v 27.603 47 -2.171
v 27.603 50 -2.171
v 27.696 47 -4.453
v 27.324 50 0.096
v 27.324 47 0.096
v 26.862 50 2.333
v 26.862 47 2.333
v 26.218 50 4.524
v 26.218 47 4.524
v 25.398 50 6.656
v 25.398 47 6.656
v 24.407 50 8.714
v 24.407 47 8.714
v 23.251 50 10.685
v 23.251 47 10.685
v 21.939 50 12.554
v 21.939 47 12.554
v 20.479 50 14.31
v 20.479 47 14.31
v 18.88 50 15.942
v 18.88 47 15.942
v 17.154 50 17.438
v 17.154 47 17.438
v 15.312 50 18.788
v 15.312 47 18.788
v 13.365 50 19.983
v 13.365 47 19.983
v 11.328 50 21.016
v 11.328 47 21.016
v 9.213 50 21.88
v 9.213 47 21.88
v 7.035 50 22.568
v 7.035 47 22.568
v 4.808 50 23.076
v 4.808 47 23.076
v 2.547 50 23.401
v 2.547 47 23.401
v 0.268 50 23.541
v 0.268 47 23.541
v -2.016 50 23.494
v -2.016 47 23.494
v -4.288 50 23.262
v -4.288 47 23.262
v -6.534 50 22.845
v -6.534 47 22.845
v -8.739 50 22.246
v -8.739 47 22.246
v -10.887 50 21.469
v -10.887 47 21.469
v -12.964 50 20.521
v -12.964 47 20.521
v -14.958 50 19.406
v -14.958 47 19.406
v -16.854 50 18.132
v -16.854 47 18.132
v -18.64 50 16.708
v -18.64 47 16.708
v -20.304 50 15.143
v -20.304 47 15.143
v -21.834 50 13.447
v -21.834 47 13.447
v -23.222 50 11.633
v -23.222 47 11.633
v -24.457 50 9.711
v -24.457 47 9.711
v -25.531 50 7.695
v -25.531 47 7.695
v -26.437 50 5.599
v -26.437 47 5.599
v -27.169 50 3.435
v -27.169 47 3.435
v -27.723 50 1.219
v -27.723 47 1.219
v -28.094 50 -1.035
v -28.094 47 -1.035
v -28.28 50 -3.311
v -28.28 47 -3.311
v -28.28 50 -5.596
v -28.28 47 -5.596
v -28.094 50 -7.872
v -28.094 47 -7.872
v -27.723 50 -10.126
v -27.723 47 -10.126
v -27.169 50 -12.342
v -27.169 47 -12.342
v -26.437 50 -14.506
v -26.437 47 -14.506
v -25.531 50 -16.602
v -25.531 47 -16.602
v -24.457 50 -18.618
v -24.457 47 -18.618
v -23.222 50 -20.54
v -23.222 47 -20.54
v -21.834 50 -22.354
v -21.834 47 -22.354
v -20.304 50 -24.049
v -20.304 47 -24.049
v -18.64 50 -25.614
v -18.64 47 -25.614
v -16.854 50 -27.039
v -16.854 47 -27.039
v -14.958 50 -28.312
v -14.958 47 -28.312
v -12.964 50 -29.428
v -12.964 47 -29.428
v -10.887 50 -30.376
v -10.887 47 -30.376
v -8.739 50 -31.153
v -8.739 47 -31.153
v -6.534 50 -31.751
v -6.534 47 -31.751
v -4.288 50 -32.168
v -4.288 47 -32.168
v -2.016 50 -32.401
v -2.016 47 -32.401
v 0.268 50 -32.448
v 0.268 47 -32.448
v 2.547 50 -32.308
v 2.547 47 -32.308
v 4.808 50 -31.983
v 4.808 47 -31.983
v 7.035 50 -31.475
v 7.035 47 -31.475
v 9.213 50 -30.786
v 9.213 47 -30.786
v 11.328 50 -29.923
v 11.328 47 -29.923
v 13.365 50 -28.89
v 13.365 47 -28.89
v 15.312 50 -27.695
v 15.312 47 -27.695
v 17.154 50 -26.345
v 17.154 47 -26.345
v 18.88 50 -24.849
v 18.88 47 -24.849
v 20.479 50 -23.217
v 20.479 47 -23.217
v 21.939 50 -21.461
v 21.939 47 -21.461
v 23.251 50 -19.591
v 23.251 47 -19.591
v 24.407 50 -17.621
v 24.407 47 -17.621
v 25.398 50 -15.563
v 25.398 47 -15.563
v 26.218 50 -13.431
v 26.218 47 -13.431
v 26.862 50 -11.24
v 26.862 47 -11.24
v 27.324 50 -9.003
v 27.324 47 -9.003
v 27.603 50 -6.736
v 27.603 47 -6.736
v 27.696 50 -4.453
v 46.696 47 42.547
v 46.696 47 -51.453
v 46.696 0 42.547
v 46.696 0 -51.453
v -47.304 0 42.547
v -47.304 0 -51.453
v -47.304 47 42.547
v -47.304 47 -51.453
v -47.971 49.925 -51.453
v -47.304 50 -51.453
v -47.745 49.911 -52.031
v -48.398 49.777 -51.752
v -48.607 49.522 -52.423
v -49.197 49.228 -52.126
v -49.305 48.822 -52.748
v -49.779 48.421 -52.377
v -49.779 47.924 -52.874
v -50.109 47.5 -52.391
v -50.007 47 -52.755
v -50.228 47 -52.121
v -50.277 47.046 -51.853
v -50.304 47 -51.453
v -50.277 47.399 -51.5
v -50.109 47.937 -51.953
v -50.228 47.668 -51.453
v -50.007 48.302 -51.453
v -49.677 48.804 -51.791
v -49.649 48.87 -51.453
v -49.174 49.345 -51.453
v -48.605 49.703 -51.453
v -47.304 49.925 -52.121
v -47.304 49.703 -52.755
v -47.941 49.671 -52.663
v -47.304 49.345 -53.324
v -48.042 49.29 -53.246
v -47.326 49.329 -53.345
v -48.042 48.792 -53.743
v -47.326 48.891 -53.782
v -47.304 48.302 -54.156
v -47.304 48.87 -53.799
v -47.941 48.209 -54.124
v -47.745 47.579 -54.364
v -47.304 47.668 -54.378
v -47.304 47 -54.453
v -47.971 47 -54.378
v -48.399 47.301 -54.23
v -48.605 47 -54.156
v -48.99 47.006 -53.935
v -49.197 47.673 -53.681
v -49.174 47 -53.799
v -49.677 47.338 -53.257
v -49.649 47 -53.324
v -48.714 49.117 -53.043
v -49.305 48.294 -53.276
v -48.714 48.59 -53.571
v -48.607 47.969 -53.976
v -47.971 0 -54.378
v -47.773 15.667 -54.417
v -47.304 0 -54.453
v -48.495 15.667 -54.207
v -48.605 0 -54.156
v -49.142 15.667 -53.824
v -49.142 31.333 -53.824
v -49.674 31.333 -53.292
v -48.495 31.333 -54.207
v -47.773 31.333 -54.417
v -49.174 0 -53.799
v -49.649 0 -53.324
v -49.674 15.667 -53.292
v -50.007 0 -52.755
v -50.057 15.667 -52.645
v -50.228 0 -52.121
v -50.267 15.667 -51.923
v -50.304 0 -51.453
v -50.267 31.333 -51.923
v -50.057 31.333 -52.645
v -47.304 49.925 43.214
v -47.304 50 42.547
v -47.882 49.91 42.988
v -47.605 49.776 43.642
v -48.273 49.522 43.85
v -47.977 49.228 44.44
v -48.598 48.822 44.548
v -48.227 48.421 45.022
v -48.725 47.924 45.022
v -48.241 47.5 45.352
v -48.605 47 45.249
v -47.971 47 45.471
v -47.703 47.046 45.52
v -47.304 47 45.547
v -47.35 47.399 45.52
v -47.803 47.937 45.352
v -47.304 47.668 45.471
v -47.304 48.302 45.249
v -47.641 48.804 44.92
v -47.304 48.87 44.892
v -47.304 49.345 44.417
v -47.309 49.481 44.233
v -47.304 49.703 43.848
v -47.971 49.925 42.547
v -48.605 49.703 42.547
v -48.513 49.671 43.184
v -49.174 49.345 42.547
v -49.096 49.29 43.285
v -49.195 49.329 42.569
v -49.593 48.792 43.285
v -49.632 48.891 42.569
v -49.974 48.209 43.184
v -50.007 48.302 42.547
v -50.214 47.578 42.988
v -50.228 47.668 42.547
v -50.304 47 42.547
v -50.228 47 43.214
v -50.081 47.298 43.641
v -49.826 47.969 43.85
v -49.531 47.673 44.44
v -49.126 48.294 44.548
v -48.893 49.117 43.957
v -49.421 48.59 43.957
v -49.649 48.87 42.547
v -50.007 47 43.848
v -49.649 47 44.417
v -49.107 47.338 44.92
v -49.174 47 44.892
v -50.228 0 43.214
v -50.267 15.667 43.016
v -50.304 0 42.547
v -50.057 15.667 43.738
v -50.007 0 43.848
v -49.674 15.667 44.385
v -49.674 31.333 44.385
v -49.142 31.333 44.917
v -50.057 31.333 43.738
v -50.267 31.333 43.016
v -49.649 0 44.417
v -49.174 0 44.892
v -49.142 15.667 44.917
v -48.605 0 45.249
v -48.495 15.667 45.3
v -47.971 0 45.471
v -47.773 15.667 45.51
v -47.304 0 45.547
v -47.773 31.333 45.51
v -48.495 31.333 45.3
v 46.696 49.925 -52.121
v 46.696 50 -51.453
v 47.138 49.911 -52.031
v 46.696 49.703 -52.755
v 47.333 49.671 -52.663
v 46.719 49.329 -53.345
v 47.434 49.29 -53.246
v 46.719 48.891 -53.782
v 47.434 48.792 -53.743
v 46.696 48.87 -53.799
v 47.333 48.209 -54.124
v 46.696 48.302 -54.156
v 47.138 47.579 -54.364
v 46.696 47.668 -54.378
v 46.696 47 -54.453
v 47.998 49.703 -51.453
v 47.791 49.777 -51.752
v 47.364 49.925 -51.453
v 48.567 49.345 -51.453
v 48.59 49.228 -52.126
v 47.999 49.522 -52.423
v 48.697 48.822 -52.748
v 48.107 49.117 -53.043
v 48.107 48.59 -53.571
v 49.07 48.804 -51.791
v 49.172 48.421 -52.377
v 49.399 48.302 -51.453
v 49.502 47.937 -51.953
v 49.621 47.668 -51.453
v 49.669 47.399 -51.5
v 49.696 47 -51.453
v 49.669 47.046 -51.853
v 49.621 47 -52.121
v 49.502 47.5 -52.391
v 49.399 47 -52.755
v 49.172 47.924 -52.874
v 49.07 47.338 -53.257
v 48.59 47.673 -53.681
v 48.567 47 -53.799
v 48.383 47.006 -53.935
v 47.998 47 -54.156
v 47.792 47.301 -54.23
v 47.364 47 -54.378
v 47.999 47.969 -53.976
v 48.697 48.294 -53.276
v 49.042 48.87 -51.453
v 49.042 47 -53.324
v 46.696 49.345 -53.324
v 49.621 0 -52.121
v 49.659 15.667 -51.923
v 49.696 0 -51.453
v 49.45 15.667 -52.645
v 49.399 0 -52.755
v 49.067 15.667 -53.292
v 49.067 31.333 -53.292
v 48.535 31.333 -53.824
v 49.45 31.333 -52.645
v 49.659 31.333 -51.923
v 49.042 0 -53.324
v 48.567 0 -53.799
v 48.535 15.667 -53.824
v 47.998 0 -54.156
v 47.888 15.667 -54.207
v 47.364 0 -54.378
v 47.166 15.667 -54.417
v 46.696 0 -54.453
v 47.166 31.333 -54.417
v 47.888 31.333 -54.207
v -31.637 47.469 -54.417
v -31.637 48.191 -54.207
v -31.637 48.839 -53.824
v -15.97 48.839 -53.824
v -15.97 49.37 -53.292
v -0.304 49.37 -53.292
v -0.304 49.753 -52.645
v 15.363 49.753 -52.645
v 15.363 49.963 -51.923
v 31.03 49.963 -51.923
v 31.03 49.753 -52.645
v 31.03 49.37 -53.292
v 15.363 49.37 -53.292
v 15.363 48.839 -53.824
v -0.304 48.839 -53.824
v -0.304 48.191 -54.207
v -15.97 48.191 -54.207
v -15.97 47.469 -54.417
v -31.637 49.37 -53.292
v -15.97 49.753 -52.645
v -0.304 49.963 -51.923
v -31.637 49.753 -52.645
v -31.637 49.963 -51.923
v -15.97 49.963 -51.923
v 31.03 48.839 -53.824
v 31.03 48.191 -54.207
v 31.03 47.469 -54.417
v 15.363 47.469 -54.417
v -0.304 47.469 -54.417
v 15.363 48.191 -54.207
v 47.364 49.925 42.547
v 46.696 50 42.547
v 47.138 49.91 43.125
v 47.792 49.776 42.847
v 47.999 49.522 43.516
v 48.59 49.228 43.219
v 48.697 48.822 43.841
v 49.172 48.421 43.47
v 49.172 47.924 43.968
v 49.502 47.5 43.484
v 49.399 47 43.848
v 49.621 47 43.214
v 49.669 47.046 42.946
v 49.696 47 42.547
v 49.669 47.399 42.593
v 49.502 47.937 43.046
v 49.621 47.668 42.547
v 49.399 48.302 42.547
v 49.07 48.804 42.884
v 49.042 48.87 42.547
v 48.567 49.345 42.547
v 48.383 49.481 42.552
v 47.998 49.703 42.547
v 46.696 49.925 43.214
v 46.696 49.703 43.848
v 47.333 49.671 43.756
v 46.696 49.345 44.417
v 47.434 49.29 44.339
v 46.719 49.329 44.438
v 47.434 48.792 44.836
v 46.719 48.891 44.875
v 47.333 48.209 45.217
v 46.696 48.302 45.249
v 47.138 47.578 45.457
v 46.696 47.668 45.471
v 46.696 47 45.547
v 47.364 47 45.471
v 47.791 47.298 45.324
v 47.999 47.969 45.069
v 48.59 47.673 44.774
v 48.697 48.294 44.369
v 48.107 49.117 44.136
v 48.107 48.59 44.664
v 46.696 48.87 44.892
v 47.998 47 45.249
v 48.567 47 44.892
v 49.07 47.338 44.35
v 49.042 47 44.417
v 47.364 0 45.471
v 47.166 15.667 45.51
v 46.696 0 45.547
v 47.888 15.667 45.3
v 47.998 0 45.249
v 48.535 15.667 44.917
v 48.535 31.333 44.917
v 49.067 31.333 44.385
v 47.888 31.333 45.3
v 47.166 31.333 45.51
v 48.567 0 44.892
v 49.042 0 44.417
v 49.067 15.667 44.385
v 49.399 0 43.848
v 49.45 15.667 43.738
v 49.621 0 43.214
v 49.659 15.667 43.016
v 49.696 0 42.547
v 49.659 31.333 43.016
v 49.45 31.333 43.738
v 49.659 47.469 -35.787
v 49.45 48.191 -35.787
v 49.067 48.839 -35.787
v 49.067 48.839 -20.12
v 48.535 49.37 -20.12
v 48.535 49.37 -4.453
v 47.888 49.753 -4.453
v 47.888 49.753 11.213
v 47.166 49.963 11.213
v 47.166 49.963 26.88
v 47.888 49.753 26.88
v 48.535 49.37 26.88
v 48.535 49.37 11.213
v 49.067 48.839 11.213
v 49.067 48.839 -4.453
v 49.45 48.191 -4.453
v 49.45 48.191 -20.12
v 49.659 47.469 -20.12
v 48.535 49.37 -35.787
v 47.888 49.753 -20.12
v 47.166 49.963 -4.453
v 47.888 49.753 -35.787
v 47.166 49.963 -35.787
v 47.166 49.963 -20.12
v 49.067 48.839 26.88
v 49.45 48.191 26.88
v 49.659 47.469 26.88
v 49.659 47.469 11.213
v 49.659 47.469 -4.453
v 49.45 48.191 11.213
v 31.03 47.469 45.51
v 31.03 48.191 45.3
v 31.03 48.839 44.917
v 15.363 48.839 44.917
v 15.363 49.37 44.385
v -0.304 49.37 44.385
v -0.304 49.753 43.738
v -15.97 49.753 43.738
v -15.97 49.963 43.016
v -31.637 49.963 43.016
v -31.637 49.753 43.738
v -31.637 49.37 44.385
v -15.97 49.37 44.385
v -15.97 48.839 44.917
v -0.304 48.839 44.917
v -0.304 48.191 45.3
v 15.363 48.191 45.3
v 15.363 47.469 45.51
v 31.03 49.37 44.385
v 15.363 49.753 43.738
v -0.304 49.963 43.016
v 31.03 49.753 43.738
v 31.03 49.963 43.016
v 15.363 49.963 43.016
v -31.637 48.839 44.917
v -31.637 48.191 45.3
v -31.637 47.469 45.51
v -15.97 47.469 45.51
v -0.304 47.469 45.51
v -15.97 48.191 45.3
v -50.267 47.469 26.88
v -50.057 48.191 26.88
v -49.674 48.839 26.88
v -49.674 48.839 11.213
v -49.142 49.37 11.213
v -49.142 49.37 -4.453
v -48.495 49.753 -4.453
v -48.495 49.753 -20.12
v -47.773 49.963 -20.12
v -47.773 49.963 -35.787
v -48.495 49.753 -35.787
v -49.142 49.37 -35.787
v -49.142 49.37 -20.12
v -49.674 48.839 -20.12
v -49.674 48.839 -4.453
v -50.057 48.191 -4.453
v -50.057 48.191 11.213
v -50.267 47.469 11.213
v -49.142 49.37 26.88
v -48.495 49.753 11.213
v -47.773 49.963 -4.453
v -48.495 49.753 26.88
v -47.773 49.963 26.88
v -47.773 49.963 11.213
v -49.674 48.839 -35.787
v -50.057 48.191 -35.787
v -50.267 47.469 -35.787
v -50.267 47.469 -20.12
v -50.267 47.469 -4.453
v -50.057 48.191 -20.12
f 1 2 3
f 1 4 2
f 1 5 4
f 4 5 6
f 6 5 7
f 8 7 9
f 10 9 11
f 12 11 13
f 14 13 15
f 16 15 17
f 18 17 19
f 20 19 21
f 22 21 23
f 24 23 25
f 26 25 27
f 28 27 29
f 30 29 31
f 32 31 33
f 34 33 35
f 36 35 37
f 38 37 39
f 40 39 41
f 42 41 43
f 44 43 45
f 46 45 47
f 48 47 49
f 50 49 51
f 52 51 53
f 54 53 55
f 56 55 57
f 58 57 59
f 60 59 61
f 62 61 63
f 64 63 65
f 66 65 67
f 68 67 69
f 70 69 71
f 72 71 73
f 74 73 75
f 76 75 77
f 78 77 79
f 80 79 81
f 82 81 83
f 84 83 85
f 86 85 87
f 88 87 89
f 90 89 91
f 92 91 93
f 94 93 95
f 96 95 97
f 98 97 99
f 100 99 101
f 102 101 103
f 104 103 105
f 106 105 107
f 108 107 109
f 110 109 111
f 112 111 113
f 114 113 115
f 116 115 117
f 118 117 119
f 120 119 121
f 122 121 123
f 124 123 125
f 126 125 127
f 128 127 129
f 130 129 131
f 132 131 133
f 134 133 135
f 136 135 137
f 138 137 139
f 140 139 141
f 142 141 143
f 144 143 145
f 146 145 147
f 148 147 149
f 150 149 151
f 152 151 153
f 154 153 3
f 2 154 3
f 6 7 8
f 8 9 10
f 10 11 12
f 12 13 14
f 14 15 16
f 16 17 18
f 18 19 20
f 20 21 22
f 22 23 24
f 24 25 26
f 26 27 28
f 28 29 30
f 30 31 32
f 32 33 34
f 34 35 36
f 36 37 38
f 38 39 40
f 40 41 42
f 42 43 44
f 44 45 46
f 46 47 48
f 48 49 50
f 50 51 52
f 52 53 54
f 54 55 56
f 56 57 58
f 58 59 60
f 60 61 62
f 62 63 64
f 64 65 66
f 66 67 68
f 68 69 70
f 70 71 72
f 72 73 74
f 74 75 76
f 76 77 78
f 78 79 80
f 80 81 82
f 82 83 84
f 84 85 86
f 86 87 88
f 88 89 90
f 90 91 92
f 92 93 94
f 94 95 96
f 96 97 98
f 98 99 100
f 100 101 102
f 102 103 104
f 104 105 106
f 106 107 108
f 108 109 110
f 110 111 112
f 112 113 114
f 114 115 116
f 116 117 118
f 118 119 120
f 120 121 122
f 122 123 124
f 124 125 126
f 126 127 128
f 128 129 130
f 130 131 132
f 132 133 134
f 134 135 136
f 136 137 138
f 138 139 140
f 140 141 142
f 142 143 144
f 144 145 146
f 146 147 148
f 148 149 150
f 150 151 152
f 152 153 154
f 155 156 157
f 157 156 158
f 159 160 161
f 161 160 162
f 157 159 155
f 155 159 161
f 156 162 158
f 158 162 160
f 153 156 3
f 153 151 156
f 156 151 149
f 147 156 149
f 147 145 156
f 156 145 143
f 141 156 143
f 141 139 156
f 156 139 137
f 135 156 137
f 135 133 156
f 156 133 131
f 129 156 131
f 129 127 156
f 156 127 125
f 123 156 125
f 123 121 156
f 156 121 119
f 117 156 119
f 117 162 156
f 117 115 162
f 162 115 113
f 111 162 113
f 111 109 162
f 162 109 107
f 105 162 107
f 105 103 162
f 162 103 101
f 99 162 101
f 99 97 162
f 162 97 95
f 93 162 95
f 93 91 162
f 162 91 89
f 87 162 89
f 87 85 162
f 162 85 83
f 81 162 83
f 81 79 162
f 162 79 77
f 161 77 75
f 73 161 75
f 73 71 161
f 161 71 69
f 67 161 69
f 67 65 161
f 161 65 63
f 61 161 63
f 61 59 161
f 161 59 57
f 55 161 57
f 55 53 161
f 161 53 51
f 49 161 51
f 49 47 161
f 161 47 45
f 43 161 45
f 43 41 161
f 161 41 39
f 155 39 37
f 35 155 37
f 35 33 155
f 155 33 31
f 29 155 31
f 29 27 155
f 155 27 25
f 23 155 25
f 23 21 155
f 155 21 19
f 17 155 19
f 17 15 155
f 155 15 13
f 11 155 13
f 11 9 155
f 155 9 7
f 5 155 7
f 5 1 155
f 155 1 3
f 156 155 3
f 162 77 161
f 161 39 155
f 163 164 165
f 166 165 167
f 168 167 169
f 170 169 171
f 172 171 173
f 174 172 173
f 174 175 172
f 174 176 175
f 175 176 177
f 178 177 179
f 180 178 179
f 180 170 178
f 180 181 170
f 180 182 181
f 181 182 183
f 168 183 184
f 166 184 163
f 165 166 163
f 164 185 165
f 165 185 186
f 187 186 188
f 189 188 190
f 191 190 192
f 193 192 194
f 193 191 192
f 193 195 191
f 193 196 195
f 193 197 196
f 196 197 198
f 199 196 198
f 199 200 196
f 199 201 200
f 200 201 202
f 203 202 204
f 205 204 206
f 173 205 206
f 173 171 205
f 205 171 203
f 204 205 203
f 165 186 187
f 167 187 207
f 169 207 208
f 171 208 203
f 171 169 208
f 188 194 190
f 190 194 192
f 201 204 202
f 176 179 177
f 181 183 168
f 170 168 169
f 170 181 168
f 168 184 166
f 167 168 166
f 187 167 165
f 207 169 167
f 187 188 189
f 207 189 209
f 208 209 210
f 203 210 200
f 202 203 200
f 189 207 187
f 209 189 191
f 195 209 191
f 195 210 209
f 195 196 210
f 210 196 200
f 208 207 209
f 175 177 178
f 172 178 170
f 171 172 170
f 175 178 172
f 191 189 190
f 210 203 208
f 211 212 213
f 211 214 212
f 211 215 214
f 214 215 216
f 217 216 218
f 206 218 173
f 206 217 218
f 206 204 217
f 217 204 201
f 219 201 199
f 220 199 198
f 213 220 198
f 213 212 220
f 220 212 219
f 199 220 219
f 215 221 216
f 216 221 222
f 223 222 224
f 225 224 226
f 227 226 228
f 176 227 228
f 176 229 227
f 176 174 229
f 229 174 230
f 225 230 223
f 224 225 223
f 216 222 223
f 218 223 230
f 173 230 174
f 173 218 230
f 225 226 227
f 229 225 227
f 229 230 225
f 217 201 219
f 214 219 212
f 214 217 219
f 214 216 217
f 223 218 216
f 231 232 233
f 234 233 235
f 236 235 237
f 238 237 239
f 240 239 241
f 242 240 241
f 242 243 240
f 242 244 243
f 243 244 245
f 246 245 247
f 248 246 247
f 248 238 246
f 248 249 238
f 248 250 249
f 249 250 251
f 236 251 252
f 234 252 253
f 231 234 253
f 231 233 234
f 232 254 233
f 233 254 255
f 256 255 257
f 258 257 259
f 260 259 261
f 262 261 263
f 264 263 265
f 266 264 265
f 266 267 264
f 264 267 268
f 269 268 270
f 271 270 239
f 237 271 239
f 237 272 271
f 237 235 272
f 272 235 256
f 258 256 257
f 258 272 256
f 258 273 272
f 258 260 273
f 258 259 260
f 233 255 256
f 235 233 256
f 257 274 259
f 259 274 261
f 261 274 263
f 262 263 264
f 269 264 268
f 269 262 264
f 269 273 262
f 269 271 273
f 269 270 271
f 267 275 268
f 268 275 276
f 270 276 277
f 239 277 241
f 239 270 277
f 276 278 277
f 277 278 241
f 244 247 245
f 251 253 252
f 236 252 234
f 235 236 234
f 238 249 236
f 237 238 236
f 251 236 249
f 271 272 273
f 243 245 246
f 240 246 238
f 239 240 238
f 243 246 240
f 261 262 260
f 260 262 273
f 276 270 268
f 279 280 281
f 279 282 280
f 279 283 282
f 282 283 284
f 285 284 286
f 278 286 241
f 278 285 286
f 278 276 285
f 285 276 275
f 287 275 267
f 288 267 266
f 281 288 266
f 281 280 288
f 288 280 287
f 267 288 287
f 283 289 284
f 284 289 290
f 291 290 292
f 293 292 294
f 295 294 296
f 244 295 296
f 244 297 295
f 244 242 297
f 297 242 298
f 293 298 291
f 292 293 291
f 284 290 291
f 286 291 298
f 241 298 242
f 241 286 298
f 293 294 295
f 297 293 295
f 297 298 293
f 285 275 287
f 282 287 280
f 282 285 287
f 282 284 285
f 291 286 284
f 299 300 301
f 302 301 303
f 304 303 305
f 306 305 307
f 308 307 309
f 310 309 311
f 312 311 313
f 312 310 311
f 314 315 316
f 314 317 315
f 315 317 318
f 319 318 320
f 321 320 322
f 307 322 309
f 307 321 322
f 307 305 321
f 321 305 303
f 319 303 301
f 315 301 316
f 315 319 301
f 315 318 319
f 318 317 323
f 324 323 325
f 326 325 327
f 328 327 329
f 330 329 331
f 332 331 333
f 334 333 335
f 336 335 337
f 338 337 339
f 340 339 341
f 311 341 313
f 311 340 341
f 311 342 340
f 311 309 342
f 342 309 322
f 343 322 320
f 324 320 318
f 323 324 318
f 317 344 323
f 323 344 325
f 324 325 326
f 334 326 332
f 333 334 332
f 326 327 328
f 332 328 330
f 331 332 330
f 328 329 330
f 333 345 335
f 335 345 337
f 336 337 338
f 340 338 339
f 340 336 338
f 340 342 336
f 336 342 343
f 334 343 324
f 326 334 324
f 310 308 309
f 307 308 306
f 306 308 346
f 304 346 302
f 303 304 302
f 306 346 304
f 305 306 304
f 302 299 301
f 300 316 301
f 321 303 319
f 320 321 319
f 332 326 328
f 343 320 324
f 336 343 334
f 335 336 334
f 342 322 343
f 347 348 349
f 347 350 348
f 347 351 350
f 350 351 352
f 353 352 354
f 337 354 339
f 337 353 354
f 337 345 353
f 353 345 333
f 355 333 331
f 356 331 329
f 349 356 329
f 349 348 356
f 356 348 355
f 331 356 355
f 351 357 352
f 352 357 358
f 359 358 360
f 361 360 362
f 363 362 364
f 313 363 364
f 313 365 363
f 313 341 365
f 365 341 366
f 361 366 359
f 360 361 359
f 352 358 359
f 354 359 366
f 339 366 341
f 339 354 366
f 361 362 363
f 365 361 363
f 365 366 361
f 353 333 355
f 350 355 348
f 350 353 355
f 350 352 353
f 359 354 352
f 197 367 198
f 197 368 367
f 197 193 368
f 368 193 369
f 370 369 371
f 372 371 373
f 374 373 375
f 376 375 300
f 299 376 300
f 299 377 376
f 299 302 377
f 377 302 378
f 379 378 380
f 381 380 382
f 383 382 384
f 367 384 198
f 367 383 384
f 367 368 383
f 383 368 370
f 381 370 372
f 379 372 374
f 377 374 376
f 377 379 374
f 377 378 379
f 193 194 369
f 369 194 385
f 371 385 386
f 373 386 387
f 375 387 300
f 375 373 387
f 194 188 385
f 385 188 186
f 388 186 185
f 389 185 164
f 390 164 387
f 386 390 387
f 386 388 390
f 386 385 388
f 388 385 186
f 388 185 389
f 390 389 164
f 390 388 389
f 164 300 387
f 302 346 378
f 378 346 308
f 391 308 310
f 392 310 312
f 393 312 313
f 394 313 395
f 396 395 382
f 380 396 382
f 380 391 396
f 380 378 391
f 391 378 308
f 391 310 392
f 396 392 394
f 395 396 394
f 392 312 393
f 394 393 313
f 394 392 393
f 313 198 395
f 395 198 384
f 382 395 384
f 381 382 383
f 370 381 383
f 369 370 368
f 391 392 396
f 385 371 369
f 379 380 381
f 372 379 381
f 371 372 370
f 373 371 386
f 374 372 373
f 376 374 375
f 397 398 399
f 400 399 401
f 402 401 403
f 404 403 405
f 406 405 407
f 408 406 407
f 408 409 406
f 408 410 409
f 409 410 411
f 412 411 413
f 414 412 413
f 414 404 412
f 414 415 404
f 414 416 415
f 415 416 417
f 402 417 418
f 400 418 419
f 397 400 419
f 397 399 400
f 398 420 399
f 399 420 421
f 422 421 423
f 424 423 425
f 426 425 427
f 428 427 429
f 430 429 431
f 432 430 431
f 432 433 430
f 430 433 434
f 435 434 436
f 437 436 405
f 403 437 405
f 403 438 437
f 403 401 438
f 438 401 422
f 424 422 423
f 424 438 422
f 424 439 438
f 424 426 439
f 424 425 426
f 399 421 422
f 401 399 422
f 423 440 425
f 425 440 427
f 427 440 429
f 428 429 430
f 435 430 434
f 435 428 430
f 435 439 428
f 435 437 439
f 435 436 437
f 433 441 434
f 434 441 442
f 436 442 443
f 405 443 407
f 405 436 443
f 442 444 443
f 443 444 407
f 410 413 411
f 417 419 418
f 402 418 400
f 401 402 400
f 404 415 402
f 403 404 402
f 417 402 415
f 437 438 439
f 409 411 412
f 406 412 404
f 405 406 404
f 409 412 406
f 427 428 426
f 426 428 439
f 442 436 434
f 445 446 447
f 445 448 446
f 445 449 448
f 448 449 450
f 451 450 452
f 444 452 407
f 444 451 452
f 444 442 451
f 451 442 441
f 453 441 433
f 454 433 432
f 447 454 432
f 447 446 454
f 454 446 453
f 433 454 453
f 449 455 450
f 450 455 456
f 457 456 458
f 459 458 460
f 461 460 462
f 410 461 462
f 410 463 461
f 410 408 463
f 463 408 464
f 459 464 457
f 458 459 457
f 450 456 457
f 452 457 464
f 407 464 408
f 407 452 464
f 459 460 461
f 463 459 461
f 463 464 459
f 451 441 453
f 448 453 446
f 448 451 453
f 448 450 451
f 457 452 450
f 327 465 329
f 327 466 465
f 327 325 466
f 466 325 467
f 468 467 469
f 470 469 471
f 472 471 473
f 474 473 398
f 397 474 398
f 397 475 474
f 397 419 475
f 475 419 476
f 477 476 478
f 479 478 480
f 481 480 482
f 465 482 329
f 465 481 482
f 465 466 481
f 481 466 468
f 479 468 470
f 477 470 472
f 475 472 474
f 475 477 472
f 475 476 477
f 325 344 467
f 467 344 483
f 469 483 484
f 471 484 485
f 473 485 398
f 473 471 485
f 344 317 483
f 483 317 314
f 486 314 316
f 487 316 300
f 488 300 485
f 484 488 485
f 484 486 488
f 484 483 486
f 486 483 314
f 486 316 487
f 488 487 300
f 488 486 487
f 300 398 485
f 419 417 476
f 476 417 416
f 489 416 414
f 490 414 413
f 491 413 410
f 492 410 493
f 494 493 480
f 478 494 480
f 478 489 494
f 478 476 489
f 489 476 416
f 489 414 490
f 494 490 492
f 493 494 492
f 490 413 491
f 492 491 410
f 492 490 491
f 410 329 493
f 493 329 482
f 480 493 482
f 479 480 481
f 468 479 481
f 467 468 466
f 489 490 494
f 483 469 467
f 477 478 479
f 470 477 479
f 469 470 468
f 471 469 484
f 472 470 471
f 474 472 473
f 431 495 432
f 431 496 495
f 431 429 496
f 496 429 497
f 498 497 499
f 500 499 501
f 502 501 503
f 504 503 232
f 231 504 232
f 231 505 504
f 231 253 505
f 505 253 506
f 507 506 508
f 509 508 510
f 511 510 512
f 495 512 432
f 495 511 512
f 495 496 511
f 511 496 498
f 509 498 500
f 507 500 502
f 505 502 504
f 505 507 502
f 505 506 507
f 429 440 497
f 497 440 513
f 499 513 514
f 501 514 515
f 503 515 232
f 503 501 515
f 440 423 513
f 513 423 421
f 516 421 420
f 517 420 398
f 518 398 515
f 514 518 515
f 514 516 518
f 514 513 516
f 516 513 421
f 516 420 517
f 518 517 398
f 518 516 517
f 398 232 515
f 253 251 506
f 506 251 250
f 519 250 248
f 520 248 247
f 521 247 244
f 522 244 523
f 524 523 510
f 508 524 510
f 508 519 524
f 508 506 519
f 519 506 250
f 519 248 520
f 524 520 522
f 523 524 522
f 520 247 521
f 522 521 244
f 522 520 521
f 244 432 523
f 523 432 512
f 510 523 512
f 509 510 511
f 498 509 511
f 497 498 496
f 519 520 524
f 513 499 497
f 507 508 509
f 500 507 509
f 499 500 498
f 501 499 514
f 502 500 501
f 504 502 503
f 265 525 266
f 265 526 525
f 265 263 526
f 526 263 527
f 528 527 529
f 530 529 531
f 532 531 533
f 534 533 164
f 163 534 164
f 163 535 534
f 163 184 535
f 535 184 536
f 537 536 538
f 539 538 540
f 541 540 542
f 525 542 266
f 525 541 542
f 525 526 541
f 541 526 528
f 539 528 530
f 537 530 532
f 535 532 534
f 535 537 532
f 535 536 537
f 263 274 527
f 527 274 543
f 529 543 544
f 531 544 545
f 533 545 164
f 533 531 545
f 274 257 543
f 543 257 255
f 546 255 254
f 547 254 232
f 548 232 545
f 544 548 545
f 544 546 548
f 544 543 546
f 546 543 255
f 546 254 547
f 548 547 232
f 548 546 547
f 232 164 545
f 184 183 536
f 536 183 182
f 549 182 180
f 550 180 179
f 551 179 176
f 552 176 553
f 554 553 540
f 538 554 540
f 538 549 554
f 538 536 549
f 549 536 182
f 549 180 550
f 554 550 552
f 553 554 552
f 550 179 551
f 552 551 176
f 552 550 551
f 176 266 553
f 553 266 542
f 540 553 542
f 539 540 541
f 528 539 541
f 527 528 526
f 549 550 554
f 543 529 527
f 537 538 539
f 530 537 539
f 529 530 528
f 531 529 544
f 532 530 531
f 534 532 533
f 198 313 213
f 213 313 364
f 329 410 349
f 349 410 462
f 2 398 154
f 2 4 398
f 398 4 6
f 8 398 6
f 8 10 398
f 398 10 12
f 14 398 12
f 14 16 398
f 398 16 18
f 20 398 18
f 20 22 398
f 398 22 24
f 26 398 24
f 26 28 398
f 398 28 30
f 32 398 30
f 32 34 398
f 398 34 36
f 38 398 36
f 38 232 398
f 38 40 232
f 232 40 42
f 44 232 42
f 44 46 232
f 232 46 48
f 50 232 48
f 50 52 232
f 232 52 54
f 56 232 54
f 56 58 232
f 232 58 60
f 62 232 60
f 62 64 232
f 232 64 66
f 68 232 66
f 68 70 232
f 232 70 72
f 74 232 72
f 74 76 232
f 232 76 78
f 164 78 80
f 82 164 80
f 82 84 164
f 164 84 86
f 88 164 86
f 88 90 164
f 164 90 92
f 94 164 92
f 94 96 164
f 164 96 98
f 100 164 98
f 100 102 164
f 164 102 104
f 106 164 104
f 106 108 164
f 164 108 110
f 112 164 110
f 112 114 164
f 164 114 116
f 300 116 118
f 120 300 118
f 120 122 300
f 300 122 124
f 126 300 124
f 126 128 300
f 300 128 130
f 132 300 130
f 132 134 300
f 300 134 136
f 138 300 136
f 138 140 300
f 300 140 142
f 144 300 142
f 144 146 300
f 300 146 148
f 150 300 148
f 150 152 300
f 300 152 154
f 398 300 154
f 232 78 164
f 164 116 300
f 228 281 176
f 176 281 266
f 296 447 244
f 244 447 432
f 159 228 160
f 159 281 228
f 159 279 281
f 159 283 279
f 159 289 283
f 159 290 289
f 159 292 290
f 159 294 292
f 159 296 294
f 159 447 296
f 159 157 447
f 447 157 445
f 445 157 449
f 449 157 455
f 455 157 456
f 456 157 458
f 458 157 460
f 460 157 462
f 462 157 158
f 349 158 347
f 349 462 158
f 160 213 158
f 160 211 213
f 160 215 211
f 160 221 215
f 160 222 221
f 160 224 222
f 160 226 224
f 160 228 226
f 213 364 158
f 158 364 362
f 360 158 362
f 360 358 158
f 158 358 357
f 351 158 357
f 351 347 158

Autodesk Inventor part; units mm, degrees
ref_plane "YZ Plane" through (0, 0, 0) normal (1, 0, 0) x (0, 1, 0)
ref_plane "XZ Plane" through (0, 0, 0) normal (0, 1, 0) x (-1, 0, 0)
ref_plane "XY Plane" through (0, 0, 0) normal (0, 0, 1) x (1, 0, 0)
sketch "Sketch1" plane through (0, 0, 0) normal (0, 1, 0) x (-1, 0, 0)
  line L0 (50.3036, 45.5466) -> (-49.6964, 45.5466)
  line L1 (-49.6964, 45.5466) -> (-49.6964, -54.4534)
  line L2 (-49.6964, -54.4534) -> (50.3036, -54.4534)
  line L3 (50.3036, -54.4534) -> (50.3036, 45.5466)
  point P0 (0, 0)
  dimension "d0" = 100
  dimension "d1" = 100
extrude "Extrusion1" add sketch "Sketch1" along normal blind 50
fillet "Fillet1" radius 3 8 edges at (49.6964, 50, -4.4534) (-0.3036, 50, 45.5466) (49.6964, 25, 45.5466) (-50.3036, 25, 45.5466) (-50.3036, 50, -4.4534) (-0.3036, 50, -54.4534) (49.6964, 25, -54.4534) (-50.3036, 25, -54.4534)
shell "Shell1" thickness 3 removed faces 1 at (14.363, 0, 11.2132)
sketch "Sketch2" plane through (0, 50, 0) normal (0, 1, 0) x (1, 0, 0)
  circle A0 centre (-0.3036, 4.4534) radius 28
  line L0 (-47.3036, -45.5466) -> (46.6964, -45.5466) projected
  line L1 (-50.3036, 51.4534) -> (-50.3036, -42.5466) projected
  point P0 (0, 0)
  dimension "d6" = 56
  dimension "d7" = 50
  dimension "d8" = 50
extrude "Extrusion2" cut sketch "Sketch2" against normal blind 50
properties part number "Top"
